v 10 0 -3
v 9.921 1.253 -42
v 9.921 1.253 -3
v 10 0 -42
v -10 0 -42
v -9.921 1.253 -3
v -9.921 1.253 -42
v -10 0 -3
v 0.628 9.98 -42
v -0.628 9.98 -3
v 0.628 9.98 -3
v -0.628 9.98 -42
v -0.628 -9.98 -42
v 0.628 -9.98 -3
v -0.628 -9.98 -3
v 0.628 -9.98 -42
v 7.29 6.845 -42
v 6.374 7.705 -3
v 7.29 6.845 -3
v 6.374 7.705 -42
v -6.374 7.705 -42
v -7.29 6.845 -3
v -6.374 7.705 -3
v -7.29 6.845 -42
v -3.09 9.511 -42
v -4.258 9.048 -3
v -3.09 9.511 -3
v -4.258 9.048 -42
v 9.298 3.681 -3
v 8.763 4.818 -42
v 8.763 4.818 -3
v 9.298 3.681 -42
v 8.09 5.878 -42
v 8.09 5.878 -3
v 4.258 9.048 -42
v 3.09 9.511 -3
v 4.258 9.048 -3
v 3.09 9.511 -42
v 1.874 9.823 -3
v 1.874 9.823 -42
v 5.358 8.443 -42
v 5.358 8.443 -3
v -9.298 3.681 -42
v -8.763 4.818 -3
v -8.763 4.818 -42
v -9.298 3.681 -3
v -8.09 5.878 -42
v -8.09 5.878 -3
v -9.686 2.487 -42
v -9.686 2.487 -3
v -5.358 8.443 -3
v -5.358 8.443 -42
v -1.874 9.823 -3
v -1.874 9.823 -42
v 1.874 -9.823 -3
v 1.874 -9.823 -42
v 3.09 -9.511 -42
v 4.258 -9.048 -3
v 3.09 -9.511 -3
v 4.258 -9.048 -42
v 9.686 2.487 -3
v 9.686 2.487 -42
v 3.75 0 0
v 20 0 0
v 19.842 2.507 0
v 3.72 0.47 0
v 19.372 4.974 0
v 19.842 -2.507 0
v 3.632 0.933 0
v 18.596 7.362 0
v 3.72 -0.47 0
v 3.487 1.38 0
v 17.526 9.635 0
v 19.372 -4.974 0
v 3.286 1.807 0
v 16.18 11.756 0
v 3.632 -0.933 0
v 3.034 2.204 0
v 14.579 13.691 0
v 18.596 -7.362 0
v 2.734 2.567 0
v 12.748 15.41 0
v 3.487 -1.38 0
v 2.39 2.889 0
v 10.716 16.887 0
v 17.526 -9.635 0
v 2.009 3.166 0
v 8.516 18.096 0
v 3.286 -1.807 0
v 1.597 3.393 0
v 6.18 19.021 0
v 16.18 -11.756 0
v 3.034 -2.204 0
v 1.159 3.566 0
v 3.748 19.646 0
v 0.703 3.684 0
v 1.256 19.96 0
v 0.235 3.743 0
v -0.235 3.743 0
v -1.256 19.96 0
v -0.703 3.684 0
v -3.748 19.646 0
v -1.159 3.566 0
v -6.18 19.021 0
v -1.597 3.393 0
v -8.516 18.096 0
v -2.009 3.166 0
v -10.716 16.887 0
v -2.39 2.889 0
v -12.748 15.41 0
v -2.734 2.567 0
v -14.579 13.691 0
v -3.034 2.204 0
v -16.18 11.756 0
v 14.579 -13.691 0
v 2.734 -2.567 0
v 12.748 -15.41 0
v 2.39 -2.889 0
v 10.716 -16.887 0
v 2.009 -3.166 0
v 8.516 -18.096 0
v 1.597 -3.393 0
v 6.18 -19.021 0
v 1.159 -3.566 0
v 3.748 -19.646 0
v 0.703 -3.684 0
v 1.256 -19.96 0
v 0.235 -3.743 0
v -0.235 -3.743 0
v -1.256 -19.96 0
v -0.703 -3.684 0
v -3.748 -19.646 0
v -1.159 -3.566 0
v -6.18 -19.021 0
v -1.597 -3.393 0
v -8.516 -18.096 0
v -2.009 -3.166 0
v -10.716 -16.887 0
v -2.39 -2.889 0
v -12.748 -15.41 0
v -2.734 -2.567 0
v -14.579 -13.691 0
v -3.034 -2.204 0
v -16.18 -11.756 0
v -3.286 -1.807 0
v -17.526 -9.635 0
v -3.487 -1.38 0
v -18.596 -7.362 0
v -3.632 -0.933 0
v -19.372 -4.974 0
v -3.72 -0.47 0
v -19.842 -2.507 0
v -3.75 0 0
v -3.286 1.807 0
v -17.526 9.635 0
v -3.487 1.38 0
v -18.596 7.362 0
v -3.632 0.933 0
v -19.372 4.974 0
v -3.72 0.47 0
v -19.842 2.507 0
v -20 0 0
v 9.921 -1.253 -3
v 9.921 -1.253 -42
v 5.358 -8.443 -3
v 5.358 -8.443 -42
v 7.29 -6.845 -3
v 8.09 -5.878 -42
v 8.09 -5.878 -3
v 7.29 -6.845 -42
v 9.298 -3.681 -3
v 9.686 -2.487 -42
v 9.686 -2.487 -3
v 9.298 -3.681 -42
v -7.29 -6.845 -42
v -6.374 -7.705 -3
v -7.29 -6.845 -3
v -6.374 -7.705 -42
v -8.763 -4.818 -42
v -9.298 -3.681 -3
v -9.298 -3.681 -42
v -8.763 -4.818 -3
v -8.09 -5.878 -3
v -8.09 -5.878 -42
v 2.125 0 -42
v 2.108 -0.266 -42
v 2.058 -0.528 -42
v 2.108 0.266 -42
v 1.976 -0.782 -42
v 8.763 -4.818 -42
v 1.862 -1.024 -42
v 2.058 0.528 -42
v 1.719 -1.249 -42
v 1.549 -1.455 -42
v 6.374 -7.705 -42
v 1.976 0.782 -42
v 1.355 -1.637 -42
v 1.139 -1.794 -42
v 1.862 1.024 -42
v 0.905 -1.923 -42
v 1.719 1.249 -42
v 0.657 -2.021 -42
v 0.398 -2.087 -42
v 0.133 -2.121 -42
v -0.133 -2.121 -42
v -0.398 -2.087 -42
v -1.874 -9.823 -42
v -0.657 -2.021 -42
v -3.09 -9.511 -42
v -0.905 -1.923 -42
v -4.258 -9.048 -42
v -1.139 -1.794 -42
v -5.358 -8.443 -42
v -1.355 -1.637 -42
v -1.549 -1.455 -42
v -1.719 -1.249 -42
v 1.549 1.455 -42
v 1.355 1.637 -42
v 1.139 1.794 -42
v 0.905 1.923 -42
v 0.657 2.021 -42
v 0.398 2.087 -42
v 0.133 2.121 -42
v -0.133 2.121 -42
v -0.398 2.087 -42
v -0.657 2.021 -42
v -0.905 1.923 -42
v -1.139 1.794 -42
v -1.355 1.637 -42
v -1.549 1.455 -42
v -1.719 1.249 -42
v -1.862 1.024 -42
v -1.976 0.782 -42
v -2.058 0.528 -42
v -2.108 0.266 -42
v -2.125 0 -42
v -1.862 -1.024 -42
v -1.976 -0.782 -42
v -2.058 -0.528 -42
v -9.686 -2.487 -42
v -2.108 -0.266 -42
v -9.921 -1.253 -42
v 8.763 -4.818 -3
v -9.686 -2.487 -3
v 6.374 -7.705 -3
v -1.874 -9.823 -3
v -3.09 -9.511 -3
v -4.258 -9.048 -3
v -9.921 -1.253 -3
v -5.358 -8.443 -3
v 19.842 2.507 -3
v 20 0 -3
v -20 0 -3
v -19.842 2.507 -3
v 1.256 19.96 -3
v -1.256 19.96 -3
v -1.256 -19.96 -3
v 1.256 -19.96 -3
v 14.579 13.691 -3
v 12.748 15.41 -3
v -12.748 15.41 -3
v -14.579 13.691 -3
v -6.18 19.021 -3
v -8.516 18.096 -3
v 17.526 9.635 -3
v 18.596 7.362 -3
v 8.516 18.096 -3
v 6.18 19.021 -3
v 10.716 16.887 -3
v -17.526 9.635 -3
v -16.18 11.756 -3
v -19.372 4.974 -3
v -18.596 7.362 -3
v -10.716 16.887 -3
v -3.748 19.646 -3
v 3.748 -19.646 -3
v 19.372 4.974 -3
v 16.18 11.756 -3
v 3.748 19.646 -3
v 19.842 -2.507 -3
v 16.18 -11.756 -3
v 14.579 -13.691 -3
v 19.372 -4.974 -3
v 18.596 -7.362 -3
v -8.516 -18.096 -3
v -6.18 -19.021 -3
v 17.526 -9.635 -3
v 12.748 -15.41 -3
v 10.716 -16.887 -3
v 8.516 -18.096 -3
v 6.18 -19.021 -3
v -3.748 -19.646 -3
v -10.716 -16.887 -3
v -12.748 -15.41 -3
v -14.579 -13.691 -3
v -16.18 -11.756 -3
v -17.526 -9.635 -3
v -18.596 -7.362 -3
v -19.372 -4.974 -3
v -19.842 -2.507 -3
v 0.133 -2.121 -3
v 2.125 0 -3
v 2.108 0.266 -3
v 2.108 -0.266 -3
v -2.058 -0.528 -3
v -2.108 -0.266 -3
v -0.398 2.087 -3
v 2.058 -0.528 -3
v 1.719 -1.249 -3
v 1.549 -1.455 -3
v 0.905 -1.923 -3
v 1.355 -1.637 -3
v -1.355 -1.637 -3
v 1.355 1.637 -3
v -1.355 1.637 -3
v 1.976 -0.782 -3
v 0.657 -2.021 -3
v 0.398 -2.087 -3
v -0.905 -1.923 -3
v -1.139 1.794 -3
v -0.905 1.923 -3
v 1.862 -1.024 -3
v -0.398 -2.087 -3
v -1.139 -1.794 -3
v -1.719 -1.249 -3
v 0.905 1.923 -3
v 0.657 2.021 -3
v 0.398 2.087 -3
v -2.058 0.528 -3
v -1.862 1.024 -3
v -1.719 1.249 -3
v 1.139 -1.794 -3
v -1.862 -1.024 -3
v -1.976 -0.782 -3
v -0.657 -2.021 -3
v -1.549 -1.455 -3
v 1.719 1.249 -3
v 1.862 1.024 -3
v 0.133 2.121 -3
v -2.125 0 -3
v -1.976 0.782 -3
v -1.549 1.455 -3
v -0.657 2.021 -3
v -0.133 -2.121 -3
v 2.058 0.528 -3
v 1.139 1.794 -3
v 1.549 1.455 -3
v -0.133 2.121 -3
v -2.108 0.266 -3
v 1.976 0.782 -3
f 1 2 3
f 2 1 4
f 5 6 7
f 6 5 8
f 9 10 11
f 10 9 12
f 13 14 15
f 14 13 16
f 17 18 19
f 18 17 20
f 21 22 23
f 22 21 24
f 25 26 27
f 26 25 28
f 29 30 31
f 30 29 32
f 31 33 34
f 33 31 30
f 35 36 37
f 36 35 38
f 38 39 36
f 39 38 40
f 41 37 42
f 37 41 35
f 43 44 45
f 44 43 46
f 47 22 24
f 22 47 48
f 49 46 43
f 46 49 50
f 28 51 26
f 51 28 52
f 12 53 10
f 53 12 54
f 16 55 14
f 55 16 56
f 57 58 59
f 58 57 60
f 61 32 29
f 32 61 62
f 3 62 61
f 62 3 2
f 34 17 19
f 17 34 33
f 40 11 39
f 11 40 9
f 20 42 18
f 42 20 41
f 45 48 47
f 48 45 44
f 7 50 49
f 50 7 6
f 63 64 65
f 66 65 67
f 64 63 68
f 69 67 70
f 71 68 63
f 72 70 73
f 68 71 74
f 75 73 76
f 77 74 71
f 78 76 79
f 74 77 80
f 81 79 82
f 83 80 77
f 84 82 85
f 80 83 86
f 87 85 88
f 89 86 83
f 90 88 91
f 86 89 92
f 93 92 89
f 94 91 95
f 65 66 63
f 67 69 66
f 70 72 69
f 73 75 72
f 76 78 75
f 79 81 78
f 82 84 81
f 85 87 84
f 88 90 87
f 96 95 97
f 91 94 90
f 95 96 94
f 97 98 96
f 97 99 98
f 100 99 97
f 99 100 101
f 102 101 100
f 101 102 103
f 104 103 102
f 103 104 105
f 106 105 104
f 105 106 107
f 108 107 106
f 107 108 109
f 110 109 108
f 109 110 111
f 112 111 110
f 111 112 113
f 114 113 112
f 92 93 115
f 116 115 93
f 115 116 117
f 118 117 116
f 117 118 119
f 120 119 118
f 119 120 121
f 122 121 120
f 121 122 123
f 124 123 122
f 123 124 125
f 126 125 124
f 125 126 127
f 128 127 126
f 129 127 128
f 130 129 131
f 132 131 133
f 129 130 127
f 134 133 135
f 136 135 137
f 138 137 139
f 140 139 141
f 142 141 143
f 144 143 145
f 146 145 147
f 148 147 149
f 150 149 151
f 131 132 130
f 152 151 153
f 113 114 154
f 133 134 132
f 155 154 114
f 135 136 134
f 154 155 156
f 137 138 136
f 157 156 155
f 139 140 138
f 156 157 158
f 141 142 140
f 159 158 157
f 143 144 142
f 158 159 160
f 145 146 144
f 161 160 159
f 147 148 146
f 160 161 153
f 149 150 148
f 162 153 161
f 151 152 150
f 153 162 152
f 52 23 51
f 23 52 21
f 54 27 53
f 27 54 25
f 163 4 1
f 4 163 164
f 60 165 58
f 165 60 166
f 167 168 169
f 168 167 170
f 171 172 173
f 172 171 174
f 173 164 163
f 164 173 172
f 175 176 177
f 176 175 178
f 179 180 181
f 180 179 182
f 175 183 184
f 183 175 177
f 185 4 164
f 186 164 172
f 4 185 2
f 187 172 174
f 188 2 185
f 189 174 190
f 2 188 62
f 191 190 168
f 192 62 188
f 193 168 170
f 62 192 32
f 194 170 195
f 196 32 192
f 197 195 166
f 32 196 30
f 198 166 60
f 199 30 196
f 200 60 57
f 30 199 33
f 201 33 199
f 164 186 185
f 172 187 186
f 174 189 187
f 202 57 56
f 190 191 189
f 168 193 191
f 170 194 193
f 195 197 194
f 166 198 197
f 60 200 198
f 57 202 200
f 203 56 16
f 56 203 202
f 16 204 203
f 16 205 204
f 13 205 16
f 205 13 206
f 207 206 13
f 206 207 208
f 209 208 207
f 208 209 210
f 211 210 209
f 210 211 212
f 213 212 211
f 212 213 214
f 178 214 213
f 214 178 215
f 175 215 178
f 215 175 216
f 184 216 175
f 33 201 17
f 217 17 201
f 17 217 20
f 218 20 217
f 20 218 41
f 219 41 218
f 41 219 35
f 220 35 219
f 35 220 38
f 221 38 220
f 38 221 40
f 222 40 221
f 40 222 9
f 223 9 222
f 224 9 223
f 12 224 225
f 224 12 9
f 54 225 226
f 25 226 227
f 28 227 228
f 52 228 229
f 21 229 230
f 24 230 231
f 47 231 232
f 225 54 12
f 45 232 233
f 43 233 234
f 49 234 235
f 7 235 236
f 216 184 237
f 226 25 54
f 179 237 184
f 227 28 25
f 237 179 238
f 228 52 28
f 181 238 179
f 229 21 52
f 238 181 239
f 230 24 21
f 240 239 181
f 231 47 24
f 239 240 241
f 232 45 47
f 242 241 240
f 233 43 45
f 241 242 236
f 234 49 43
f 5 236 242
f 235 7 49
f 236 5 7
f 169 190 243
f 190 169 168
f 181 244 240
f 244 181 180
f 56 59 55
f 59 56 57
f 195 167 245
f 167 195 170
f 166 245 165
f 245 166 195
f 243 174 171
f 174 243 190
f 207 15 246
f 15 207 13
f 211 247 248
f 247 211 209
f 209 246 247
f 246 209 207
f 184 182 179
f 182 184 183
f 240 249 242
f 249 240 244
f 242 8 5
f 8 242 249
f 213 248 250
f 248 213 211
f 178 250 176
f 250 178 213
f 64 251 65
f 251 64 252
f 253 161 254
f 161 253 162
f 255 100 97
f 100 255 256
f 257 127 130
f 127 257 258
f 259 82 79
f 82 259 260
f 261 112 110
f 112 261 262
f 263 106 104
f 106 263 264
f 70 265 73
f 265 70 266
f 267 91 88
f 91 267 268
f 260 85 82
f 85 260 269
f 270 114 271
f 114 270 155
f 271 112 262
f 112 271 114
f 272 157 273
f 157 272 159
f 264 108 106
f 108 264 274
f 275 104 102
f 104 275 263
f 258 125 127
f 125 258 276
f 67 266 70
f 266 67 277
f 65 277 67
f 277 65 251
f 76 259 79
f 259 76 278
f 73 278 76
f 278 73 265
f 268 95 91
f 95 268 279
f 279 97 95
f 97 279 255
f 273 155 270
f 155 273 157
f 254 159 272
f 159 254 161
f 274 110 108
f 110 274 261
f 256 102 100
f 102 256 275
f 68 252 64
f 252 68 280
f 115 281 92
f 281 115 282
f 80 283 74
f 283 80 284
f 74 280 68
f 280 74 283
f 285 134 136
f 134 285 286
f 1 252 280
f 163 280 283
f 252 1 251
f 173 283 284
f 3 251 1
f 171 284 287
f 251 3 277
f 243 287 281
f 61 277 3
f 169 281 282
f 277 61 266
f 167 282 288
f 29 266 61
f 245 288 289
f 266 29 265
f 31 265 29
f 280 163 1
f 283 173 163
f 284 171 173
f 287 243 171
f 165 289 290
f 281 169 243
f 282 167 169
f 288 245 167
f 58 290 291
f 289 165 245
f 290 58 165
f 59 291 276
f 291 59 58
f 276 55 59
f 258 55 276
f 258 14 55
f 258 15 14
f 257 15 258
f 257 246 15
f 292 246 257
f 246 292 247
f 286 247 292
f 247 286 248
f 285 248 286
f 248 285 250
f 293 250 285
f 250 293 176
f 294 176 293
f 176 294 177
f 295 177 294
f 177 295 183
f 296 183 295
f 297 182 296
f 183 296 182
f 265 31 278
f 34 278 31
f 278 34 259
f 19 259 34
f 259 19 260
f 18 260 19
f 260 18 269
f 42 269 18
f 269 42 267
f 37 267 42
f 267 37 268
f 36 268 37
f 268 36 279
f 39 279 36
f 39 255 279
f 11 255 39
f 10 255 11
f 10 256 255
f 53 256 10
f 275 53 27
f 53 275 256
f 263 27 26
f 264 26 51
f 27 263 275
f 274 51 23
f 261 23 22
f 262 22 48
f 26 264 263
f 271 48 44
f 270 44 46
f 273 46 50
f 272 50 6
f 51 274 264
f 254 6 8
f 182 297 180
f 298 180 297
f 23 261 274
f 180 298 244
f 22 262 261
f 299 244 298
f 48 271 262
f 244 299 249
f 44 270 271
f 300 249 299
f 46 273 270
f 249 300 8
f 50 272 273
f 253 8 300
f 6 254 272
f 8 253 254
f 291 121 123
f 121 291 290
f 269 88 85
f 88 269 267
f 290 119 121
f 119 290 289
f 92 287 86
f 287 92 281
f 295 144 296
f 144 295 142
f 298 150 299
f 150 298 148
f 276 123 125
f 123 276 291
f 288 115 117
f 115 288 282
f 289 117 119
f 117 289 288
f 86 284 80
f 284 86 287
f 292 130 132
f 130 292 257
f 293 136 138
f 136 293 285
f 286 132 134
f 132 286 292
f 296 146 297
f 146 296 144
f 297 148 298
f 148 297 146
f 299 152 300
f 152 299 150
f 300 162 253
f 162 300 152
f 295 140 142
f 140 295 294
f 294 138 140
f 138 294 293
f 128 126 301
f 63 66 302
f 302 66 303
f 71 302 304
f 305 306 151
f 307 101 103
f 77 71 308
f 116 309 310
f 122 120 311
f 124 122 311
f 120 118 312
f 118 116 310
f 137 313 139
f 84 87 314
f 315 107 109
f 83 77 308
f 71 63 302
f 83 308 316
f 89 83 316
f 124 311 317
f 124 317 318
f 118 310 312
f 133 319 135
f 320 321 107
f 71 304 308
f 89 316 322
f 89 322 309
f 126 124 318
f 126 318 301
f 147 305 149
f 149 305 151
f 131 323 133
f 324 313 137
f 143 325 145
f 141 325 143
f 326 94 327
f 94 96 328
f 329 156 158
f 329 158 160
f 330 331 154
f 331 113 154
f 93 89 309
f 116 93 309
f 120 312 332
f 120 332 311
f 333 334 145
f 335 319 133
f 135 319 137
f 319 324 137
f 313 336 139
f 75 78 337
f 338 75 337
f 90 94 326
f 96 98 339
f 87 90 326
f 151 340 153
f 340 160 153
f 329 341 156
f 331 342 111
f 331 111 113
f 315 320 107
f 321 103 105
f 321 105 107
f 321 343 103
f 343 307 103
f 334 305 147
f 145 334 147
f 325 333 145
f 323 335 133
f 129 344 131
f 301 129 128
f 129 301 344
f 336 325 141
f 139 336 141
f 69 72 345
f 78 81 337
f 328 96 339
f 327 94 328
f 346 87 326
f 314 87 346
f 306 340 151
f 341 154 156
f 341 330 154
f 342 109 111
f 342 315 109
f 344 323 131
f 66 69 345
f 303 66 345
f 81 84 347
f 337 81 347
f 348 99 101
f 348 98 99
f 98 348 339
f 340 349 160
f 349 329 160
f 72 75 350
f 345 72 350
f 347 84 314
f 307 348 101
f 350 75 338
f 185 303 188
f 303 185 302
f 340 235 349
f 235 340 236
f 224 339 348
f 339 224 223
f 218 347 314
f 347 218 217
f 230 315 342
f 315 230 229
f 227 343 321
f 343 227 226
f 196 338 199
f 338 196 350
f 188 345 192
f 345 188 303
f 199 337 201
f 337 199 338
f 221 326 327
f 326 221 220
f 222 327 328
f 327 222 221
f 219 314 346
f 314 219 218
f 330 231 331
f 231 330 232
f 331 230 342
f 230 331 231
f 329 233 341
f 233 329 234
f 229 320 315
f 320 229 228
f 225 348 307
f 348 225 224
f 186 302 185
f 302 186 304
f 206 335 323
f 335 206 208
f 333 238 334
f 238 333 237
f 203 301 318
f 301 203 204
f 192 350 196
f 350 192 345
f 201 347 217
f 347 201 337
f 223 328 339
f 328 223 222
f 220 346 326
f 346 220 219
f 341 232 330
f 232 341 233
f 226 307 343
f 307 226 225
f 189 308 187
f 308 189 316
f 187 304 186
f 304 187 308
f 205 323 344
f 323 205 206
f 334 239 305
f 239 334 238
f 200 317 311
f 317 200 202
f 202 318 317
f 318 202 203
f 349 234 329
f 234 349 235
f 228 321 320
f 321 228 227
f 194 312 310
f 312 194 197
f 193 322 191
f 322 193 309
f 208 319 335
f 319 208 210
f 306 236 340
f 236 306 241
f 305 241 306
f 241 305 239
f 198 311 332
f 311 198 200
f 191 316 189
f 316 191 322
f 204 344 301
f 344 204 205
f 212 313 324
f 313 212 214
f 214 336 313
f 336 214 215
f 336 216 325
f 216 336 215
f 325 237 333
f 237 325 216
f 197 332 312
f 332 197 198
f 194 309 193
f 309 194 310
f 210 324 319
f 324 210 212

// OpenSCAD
$fn = 50;


difference() {
	union() {
		translate(v = [0, 0, -42.0000000000]) {
			cylinder(h = 42, r = 10.0000000000);
		}
		translate(v = [0, 0, -3.0000000000]) {
			cylinder(h = 3, r = 20.0000000000);
		}
	}
	union() {
		translate(v = [0, 0, 0]) {
			rotate(a = [0, 0, 0]) {
				difference() {
					union() {
						#translate(v = [0, 0, -42.0000000000]) {
							cylinder(h = 42, r = 2.0000000000);
						}
						#translate(v = [0, 0, -3]) {
							cylinder(h = 3, r = 10.0000000000, r1 = 2.1250000000, r2 = 3.7500000000);
						}
						#translate(v = [0, 0, -42.0000000000]) {
							cylinder(h = 42, r = 2.1250000000);
						}
						#translate(v = [0, 0, -42.0000000000]) {
							cylinder(h = 42, r = 2.0000000000);
						}
					}
					union();
				}
			}
		}
	}
}
